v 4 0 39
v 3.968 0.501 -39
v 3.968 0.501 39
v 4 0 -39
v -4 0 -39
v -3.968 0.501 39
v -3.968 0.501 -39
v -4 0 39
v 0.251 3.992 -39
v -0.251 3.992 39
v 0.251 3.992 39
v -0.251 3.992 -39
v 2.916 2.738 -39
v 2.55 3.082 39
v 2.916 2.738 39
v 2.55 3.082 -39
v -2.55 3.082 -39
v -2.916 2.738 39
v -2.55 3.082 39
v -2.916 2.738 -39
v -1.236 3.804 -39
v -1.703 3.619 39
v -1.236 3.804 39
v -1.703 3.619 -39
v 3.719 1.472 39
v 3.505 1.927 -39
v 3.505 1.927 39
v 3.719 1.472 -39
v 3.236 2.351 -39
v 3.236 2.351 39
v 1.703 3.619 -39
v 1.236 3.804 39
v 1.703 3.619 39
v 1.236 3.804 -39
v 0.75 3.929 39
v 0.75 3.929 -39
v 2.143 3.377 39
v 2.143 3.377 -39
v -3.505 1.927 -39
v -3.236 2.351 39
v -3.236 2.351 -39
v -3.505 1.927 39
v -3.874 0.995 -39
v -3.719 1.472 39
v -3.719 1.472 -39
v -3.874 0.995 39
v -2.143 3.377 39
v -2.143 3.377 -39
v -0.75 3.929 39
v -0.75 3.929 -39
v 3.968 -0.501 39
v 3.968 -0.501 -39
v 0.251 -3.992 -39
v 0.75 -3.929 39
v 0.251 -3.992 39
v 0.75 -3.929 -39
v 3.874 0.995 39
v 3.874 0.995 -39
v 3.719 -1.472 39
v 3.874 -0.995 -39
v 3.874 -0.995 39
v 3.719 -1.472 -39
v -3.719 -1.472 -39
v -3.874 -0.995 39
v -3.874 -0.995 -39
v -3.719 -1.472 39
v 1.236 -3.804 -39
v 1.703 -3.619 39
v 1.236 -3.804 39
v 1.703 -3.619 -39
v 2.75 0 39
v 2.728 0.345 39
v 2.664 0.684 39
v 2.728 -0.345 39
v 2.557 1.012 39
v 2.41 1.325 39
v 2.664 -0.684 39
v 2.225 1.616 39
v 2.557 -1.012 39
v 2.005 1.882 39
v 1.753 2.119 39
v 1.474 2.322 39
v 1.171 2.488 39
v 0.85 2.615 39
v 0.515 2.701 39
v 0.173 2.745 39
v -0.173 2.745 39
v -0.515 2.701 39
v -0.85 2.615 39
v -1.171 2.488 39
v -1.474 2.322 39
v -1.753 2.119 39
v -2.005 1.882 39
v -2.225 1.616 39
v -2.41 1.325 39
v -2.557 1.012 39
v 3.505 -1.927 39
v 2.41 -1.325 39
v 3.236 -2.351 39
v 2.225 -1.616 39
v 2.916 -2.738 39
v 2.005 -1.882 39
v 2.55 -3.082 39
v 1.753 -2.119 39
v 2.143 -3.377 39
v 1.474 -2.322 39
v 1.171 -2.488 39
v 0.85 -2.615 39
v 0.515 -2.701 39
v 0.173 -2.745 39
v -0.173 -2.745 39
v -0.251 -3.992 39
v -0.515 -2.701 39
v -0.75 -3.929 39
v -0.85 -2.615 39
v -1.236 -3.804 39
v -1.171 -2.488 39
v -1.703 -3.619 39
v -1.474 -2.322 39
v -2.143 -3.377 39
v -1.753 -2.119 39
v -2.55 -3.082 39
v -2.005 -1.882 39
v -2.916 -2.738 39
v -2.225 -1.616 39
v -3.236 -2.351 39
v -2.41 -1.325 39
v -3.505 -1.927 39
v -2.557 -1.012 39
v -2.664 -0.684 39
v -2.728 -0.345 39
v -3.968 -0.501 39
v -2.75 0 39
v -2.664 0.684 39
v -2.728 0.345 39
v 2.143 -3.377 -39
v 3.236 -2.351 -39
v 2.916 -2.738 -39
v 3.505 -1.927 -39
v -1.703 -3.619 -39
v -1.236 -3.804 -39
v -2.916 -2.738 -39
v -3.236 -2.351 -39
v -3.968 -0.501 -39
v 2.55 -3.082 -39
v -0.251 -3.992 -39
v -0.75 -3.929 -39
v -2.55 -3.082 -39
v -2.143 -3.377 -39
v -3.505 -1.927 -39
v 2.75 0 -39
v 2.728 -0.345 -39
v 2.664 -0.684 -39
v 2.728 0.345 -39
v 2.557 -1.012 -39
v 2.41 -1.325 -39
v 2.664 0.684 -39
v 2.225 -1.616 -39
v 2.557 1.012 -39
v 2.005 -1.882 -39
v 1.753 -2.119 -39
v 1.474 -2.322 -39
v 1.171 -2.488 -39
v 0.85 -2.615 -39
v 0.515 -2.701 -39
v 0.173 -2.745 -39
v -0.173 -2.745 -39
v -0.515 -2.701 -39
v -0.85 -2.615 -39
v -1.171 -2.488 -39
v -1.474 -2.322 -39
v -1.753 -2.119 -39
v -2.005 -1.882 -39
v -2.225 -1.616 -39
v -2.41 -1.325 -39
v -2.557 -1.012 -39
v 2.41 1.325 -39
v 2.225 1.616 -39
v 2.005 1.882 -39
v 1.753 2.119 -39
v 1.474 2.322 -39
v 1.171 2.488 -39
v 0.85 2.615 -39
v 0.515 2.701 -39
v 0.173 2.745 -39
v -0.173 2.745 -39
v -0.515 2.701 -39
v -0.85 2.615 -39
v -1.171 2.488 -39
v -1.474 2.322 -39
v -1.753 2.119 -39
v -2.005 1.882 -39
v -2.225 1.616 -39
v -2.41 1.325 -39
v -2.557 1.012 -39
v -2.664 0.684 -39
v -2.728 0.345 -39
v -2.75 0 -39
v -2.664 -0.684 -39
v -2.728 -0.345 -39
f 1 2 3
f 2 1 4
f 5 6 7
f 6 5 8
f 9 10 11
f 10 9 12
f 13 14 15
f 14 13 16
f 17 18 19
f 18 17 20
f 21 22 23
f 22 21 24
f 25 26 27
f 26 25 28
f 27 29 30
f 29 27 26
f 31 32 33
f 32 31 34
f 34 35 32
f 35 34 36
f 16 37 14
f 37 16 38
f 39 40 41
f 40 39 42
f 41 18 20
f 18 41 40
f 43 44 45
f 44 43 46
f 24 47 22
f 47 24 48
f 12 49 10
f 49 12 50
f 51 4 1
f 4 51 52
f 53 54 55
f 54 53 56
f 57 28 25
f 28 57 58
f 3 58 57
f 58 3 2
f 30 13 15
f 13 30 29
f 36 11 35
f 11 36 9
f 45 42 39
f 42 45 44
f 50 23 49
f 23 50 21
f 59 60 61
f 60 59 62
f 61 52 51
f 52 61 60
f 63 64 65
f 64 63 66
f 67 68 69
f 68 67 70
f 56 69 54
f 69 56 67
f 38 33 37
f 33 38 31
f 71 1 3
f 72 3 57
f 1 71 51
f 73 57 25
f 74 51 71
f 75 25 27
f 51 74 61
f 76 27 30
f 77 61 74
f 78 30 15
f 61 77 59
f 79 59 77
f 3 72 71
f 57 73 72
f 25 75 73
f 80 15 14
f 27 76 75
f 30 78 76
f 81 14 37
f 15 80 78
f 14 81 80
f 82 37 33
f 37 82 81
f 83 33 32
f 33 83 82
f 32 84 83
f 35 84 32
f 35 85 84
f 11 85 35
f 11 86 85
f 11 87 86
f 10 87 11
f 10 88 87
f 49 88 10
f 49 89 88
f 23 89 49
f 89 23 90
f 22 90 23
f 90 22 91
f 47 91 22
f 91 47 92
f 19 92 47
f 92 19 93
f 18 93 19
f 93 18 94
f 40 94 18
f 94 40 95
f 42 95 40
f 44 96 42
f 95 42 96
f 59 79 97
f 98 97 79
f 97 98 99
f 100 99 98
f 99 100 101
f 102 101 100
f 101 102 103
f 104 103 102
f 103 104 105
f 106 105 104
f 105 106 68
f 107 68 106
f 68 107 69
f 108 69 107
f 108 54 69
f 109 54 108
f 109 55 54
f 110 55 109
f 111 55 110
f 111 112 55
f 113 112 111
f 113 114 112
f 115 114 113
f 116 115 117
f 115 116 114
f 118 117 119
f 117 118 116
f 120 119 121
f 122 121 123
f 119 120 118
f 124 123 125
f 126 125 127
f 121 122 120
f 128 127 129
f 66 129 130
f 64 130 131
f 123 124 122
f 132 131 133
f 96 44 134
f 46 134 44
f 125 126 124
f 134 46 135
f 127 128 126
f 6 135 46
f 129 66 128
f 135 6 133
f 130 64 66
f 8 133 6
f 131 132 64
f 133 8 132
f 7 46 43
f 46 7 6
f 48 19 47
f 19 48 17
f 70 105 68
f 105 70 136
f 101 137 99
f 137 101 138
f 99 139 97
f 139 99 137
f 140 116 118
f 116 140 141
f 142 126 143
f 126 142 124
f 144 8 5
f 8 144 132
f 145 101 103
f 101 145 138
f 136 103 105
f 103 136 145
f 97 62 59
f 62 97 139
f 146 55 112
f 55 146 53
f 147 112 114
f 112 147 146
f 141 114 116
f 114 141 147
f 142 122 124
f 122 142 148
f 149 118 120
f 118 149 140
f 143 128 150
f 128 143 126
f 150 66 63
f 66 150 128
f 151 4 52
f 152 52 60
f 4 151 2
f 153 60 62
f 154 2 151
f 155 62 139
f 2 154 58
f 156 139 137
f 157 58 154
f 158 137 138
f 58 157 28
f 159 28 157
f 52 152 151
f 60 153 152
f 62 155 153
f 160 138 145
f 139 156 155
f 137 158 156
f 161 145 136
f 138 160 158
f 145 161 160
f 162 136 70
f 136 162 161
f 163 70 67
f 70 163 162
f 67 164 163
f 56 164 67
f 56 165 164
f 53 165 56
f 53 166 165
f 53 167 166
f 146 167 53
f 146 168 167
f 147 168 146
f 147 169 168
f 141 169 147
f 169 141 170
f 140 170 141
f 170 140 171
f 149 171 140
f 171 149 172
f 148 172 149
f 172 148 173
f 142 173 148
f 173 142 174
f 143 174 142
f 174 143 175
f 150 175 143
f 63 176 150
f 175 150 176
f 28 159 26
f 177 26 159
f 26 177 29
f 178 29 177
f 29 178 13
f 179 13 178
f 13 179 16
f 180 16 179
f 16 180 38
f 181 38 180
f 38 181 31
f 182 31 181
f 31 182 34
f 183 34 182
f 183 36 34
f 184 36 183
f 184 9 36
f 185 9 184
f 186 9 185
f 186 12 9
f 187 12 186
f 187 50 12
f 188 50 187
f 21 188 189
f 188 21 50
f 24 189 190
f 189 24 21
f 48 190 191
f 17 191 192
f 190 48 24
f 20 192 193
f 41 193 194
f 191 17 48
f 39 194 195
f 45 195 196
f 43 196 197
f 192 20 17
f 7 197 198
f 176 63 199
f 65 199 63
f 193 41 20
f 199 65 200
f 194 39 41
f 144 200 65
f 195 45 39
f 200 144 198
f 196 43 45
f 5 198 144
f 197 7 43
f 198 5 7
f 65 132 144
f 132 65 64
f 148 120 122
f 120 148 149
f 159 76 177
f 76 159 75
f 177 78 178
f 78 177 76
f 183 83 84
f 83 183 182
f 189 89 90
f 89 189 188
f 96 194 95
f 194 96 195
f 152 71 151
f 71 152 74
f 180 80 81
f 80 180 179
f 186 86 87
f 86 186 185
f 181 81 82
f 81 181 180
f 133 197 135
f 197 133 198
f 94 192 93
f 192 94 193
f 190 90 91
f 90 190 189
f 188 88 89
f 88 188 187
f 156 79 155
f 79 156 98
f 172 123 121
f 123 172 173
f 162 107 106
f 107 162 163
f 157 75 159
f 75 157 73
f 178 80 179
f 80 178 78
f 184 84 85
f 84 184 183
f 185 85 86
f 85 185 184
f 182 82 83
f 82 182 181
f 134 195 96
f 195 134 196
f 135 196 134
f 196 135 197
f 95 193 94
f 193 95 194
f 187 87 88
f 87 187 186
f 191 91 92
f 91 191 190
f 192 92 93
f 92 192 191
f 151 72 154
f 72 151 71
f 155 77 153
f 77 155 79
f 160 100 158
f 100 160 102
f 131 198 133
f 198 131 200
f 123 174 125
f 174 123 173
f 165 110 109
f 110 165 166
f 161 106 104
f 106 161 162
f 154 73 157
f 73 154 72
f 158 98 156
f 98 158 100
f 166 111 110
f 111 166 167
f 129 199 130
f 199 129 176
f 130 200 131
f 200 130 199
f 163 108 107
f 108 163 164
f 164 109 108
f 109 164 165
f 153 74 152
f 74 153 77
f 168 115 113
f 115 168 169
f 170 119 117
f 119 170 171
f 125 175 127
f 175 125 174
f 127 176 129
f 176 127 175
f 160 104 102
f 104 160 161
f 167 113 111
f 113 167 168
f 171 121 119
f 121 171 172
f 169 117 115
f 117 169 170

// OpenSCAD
$fn = 50;


difference() {
	union() {
		translate(v = [0, 0, -39.0000000000]) {
			cylinder(h = 78, r = 4.0000000000);
		}
	}
	union() {
		translate(v = [0, 0, -100.0000000000]) {
			cylinder(h = 200, r = 2.7500000000);
		}
	}
}
